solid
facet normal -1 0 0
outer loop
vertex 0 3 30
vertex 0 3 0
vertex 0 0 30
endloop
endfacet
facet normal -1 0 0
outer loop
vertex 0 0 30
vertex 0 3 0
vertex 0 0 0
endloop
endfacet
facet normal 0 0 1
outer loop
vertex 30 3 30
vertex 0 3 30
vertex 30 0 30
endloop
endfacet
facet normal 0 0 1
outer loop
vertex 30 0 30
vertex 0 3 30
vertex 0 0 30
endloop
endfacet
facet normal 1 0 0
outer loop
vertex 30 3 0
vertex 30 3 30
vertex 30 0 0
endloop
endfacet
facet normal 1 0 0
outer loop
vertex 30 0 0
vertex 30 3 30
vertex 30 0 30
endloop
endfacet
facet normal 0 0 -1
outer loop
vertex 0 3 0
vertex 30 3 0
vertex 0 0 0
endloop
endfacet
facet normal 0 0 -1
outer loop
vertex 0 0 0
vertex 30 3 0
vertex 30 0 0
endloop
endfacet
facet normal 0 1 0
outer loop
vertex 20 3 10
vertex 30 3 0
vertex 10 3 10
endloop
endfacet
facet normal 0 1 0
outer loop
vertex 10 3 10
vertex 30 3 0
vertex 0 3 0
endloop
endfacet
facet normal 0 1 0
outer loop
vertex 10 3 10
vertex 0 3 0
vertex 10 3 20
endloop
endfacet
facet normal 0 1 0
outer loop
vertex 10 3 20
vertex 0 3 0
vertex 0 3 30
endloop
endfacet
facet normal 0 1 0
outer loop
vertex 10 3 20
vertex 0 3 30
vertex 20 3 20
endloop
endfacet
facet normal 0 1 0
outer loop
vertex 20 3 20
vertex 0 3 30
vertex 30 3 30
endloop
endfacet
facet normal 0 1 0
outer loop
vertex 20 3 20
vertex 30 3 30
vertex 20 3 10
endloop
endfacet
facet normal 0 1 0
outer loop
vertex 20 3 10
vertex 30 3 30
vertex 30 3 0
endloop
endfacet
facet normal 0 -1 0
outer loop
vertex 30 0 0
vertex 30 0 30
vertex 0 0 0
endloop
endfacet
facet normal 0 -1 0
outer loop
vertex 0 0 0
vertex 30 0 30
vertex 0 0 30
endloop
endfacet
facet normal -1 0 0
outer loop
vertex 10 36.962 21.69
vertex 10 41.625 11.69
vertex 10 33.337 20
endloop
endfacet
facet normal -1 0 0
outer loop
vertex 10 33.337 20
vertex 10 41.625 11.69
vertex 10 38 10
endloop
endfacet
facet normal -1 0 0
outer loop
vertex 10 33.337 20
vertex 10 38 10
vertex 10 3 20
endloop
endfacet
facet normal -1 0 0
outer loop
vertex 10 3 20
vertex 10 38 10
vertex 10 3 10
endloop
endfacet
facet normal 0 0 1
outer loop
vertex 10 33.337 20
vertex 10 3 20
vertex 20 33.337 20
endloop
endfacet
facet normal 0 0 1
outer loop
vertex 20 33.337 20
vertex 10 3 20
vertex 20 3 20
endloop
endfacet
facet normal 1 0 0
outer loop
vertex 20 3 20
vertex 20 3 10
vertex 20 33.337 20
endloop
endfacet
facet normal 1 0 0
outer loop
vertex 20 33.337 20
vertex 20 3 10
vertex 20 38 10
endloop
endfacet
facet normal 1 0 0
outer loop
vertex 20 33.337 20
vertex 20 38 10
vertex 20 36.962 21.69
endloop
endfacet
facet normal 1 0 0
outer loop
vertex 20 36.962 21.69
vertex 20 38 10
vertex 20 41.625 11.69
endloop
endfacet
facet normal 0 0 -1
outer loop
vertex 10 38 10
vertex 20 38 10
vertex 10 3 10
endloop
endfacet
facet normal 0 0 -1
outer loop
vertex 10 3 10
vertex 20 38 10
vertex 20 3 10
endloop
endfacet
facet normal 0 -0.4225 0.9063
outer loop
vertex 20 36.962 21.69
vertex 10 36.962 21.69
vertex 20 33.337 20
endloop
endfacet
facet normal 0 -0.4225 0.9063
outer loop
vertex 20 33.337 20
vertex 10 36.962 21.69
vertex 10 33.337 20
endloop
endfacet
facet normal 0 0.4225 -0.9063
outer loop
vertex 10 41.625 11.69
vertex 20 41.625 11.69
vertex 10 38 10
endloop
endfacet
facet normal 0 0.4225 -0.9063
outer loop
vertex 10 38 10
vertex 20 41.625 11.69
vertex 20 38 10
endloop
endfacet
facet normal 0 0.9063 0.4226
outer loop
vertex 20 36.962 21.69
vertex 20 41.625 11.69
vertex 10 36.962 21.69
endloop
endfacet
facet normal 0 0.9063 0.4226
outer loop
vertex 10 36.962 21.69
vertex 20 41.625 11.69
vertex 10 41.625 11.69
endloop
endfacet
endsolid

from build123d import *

# Parameters (mm, degrees)
SKETCH1_W           = 30
SKETCH1_H           = 30
BOSS_EXTRUDE1_DEPTH = 3
SKETCH2_W           = 10
SKETCH2_H           = 10
BOSS_EXTRUDE2_DEPTH = 35
CUT_EXTRUDE2_DEPTH  = 21
SKETCH5_W           = 10
SKETCH5_H           = 11.03377919
BOSS_EXTRUDE3_DEPTH = 4


with BuildPart() as part:
    # Sketch1 → Boss-Extrude1 (new body)
    with BuildSketch(Plane(origin=(0, 0, 0), x_dir=(1, 0, 0), z_dir=(0, 1, 0))):
        with Locations((15, -15)):
            Rectangle(SKETCH1_W, SKETCH1_H)
    extrude(amount=BOSS_EXTRUDE1_DEPTH)

    # Sketch2 → Boss-Extrude2 (add)
    with BuildSketch(Plane(origin=(0, 3, 0), x_dir=(1, 0, 0), z_dir=(0, 1, 0))):
        with Locations((15, -15)):
            Rectangle(SKETCH2_W, SKETCH2_H)
    extrude(amount=BOSS_EXTRUDE2_DEPTH)

    # Sketch3 → Cut-Extrude2 (cut, through all)
    with BuildSketch(Plane(origin=(20, 0, 0), x_dir=(0, 0, -1), z_dir=(1, 0, 0))):
        Polygon((-20, 38), (-10, 38), (-20, 33.336923418), align=None)
    extrude(amount=-CUT_EXTRUDE2_DEPTH, mode=Mode.SUBTRACT)

    # Sketch5 → Boss-Extrude3 (add)
    with BuildSketch(Plane(origin=(0, 35.0431868, 16.340906371), x_dir=(1, 0, 0), z_dir=(0, 0.906307787, 0.422618262))):
        with Locations((15, 1.479526481)):
            Rectangle(SKETCH5_W, SKETCH5_H)
    extrude(amount=BOSS_EXTRUDE3_DEPTH)


solid = part.part
